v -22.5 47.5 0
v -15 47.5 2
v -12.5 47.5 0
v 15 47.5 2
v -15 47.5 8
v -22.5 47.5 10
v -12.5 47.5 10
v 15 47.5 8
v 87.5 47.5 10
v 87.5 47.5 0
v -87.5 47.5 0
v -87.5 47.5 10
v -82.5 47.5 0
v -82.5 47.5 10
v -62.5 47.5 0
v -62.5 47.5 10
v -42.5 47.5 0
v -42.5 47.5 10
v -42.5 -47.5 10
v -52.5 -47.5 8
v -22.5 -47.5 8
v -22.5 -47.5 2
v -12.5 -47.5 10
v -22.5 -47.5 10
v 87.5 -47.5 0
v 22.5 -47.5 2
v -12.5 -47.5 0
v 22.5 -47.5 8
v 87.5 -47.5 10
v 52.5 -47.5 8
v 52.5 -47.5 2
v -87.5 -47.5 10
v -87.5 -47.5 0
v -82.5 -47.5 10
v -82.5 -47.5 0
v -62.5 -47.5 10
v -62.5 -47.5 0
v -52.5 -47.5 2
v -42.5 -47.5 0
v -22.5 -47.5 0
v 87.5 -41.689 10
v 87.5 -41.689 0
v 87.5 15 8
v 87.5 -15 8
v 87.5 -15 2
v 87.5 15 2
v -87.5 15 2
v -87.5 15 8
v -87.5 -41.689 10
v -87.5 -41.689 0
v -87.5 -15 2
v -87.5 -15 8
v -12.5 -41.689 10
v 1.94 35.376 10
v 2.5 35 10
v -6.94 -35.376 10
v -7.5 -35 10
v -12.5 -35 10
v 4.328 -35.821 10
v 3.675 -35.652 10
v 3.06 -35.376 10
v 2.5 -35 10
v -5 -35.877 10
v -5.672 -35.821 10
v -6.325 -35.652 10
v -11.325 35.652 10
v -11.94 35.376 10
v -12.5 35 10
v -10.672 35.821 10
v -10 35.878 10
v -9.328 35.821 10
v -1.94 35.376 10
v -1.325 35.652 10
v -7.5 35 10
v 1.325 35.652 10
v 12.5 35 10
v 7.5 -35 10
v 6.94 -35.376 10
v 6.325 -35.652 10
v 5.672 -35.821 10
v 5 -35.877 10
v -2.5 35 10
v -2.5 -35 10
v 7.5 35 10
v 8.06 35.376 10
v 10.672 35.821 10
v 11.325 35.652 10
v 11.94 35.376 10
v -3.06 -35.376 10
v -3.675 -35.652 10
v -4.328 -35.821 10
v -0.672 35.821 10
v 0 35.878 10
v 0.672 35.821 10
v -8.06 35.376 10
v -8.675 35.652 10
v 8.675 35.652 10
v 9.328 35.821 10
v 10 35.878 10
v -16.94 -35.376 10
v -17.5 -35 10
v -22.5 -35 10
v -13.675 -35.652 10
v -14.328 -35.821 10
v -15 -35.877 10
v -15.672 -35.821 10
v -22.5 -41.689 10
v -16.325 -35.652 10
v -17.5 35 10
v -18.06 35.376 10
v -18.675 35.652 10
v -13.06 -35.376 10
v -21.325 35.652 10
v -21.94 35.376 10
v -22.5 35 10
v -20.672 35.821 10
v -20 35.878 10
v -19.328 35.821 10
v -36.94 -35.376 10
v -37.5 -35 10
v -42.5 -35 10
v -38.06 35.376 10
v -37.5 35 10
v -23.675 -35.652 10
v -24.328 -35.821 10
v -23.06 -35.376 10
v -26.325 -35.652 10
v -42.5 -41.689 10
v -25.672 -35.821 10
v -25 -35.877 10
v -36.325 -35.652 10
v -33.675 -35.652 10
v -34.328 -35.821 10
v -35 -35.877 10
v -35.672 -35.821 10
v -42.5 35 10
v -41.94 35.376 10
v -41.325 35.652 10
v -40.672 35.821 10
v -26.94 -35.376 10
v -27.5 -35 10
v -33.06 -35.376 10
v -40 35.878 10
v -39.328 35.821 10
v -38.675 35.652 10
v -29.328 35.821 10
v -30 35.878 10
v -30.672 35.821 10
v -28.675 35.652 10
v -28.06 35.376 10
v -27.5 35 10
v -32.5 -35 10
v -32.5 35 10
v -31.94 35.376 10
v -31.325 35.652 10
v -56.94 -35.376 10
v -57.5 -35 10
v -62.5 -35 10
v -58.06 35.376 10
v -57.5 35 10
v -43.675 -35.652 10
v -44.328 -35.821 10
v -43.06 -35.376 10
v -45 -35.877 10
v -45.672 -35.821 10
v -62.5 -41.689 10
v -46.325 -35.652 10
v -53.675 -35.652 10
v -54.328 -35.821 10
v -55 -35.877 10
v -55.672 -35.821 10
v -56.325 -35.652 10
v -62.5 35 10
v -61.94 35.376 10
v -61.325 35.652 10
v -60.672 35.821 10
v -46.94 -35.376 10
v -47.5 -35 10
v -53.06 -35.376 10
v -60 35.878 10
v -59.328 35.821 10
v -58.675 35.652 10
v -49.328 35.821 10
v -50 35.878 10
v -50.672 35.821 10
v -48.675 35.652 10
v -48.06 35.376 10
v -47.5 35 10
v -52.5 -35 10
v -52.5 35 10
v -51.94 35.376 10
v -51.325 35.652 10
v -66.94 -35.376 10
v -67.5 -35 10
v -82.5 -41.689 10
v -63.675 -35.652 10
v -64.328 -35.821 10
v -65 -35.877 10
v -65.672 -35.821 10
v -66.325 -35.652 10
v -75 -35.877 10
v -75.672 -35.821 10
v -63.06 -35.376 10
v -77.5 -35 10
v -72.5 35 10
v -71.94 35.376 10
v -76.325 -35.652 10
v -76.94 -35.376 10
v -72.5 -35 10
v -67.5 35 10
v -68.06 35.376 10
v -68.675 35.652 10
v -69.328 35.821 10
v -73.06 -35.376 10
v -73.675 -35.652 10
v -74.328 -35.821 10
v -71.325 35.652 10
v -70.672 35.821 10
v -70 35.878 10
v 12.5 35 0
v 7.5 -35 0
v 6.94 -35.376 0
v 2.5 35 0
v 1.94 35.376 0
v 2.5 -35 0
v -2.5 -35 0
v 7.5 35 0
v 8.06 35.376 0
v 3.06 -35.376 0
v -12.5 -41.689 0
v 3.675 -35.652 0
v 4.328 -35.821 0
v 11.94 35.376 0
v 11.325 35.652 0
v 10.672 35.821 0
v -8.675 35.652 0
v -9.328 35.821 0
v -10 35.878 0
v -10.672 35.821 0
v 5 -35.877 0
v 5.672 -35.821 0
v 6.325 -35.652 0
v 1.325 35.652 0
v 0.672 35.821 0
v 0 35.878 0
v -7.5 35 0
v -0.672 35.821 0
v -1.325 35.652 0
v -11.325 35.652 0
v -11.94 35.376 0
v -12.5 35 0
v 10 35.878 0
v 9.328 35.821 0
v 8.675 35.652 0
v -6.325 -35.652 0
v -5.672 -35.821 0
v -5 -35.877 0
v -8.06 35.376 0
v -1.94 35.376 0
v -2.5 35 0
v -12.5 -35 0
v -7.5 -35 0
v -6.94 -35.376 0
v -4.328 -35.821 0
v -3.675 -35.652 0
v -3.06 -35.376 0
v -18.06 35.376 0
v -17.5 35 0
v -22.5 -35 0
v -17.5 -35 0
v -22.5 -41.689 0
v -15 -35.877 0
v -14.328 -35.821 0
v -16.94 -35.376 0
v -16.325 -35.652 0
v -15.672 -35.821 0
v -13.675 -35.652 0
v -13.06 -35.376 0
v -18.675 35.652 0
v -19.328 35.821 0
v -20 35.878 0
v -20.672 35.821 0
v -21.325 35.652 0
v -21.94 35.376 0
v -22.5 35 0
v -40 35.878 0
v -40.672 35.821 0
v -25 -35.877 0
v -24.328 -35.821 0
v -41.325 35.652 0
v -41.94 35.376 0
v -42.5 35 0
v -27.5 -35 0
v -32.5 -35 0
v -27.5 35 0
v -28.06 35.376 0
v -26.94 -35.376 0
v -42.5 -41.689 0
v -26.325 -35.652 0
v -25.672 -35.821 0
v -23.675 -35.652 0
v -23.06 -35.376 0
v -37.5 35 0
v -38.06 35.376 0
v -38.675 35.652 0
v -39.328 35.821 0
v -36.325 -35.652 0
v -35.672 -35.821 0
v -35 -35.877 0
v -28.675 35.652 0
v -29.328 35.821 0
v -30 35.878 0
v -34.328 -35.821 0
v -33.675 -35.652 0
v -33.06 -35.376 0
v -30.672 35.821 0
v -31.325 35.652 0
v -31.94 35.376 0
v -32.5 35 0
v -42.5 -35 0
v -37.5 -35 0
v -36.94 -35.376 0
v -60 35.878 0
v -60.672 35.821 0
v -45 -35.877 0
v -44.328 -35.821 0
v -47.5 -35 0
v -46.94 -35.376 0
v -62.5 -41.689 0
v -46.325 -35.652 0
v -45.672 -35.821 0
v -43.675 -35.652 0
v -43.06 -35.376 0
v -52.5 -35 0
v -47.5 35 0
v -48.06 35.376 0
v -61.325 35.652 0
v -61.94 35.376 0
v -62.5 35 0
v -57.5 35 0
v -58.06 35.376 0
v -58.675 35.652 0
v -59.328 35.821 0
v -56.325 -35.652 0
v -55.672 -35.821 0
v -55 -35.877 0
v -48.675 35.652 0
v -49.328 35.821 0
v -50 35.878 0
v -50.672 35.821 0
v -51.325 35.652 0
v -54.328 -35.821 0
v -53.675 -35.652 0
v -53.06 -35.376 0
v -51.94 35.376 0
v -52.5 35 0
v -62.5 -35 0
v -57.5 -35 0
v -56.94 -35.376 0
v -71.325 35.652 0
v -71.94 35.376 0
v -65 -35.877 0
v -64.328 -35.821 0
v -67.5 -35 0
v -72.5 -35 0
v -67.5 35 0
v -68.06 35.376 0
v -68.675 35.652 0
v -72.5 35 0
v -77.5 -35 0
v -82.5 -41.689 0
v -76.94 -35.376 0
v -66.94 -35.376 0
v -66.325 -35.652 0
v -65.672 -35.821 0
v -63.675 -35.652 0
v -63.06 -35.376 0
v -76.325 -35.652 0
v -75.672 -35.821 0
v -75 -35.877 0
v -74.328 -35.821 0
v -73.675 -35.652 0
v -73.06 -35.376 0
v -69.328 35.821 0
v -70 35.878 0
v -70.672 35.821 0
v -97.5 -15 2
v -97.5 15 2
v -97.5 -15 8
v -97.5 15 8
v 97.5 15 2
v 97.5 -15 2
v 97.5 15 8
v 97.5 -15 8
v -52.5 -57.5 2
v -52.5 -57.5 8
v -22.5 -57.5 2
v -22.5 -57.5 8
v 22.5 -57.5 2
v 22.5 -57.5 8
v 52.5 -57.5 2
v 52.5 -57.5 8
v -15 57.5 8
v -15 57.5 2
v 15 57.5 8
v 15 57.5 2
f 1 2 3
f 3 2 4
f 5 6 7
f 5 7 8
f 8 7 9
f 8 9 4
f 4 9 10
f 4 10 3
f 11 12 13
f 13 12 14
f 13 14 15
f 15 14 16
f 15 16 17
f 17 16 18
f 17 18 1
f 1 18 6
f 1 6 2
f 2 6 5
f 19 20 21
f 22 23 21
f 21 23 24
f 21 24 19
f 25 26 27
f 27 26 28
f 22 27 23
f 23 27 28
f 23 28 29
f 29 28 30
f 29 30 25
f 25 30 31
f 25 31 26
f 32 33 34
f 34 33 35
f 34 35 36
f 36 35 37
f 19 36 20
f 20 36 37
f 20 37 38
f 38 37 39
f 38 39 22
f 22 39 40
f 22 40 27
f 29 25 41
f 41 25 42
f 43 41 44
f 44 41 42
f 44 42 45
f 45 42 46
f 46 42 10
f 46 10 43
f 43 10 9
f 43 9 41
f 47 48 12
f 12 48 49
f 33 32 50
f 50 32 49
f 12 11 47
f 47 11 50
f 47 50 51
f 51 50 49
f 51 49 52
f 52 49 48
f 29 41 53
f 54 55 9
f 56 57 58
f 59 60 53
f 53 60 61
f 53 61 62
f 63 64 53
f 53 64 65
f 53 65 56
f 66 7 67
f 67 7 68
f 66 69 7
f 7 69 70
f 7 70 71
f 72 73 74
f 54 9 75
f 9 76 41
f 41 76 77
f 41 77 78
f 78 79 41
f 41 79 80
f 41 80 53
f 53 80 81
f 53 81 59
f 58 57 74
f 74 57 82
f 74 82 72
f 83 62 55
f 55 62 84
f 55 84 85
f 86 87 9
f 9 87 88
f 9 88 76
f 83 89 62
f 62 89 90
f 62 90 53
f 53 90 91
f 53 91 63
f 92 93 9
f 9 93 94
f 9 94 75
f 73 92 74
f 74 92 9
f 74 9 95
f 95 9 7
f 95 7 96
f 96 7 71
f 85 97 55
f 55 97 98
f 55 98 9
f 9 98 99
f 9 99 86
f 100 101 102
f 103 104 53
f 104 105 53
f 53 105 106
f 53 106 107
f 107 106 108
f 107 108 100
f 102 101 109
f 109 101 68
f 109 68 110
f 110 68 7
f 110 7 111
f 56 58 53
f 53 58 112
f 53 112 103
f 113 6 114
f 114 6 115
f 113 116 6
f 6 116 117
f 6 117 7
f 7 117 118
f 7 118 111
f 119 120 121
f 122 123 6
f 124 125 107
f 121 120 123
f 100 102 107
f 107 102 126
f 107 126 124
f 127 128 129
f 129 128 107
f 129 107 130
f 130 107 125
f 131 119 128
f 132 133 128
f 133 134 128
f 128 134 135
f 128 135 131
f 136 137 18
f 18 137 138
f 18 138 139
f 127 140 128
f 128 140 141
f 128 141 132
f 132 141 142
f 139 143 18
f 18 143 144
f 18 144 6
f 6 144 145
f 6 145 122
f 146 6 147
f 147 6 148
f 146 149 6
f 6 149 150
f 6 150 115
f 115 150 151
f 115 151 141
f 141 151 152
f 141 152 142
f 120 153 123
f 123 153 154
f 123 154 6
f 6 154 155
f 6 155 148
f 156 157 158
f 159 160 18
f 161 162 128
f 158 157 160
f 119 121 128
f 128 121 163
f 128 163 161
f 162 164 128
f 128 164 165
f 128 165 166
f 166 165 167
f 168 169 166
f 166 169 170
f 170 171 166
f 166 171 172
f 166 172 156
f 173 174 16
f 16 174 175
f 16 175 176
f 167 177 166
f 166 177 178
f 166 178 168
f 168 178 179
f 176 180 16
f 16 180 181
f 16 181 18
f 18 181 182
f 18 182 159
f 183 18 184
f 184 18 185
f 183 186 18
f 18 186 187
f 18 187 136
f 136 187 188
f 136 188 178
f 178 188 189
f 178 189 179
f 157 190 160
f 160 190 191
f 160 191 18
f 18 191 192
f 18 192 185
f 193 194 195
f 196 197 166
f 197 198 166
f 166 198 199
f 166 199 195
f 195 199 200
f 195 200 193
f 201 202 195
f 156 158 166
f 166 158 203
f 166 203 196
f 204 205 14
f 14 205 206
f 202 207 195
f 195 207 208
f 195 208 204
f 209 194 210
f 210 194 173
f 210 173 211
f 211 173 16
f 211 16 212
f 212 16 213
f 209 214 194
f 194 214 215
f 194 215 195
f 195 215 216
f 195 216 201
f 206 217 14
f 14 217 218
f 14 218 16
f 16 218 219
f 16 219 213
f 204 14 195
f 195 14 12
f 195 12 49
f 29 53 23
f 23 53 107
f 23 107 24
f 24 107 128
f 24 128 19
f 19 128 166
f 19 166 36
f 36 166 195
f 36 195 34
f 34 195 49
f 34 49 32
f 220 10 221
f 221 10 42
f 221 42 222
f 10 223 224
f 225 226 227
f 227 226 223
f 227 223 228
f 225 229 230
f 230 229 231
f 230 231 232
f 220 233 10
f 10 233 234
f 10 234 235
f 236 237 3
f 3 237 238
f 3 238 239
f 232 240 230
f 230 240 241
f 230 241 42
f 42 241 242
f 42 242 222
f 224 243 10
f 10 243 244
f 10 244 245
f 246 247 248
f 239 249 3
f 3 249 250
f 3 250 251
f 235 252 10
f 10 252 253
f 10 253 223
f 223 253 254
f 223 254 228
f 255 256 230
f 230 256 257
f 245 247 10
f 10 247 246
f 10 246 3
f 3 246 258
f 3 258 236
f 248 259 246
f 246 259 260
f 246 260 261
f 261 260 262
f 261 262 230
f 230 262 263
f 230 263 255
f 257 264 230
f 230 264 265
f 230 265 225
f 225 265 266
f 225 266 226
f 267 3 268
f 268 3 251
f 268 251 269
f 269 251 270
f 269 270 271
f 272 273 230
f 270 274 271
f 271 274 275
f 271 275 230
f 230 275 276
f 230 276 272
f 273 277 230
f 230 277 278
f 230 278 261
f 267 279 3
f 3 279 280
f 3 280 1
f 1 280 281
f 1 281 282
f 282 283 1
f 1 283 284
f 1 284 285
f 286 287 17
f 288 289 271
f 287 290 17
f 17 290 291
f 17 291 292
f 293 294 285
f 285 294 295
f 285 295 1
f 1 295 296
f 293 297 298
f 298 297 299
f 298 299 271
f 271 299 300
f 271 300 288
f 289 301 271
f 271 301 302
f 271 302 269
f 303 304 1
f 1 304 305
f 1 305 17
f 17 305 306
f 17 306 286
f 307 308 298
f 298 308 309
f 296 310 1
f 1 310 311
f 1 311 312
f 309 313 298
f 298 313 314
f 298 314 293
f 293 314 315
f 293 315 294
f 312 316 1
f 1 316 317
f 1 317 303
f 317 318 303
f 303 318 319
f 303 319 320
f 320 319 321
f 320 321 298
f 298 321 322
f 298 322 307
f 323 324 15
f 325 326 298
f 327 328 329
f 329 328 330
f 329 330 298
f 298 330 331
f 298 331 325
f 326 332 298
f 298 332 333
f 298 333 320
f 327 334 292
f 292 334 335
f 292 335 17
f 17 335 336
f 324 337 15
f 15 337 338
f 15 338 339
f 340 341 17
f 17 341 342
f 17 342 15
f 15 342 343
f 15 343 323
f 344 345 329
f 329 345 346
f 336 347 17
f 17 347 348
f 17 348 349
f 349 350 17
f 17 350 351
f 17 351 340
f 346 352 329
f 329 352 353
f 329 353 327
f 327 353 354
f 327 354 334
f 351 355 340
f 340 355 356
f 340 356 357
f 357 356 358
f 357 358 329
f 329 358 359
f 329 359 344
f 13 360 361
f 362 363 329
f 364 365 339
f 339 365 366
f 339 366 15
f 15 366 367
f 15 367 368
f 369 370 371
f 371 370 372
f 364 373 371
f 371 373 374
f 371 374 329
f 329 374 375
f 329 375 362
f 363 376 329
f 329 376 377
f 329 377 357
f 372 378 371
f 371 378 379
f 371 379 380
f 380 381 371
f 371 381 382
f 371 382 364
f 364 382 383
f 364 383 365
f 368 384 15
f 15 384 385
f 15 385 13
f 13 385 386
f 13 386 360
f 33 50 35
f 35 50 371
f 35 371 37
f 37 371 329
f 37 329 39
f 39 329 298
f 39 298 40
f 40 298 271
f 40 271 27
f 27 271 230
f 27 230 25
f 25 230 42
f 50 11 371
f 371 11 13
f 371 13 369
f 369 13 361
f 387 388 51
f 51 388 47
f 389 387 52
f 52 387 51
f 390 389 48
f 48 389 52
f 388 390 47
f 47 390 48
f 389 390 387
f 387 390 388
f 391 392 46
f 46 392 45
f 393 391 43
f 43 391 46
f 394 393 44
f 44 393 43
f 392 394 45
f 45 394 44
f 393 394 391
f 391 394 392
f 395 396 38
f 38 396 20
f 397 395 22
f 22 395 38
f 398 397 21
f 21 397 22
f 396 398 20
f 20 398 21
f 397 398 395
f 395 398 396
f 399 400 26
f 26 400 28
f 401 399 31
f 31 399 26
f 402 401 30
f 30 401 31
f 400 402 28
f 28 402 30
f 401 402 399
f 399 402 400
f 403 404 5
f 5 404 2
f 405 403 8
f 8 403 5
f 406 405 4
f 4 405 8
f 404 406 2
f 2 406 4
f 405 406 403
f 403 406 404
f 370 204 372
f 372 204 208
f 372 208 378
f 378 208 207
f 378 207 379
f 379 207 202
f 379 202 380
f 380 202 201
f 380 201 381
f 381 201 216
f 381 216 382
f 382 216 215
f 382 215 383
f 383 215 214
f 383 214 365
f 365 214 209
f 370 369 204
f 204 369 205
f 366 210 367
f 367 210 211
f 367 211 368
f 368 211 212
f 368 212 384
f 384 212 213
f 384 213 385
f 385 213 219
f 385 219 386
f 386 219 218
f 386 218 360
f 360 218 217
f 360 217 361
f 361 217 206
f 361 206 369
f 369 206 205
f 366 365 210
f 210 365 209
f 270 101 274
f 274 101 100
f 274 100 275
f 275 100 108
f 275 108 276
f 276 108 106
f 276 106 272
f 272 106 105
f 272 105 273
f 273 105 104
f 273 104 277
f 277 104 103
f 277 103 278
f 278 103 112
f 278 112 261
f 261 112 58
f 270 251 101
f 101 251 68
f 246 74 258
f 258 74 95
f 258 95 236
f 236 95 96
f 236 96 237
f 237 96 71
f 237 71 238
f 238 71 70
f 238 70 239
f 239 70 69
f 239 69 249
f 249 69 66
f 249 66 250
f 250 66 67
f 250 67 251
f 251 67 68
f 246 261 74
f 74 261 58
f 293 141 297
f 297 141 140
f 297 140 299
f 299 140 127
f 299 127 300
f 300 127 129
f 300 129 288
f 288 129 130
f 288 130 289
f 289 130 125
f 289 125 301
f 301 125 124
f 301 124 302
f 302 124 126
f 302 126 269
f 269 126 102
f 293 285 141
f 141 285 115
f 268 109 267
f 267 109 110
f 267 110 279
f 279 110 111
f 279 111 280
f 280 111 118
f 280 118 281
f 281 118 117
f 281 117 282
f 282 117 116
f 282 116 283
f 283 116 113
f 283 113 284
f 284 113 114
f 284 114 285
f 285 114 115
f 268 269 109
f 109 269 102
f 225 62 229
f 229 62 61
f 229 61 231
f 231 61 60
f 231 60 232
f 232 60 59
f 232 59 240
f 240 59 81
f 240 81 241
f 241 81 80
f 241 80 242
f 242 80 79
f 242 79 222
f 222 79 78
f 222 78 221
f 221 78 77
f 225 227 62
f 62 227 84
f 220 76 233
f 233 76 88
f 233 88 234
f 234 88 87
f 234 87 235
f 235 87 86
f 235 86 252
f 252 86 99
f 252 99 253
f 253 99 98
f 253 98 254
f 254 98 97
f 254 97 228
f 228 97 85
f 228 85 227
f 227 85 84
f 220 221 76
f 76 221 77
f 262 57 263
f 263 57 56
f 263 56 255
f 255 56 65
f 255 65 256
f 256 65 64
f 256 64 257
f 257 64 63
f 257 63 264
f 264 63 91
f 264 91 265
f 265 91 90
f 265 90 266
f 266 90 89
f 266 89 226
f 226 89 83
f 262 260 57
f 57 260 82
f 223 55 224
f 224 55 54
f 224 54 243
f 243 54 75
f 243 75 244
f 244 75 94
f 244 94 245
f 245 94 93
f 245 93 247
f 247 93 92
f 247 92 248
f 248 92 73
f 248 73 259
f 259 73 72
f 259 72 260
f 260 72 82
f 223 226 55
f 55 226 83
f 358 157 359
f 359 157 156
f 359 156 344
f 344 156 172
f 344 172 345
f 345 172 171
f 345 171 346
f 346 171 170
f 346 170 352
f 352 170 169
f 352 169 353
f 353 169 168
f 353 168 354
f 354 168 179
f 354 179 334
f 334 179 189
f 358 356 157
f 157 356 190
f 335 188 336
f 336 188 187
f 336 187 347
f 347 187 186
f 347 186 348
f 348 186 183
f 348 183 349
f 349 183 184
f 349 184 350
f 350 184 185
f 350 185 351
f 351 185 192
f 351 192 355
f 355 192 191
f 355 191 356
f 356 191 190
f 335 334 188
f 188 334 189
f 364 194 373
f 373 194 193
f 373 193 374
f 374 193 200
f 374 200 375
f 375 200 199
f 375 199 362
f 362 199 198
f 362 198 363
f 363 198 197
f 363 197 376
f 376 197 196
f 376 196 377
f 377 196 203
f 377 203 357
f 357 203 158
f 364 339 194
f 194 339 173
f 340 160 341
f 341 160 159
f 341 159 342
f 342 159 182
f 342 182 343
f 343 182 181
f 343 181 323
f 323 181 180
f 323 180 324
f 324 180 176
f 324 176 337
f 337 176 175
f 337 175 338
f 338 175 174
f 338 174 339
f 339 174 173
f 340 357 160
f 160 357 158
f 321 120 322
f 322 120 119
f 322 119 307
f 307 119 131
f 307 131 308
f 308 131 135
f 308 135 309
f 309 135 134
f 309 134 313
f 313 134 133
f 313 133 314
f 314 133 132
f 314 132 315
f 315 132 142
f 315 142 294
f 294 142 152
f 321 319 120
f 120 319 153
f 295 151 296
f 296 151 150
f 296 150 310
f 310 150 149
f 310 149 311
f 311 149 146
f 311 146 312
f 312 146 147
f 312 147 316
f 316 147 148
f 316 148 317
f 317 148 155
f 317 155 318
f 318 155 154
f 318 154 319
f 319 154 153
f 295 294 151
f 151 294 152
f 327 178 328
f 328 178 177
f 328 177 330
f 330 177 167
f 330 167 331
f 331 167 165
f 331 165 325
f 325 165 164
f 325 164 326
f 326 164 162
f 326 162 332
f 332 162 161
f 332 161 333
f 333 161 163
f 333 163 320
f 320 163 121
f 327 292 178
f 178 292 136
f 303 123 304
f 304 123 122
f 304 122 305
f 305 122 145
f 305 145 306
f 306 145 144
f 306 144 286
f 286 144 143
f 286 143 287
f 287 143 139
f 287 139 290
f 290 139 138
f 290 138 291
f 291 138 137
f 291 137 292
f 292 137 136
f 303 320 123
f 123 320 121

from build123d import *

# Parameters (mm, degrees)
ESBO_O1_W                = 175
ESBO_O1_H                = 95
RESSALTO_EXTRUS_O1_DEPTH = 10
ESBO_O2_W                = 6
ESBO_O2_H                = 30
RESSALTO_EXTRUS_O2_DEPTH = 10
ESBO_O3_W                = 6
ESBO_O3_H                = 30
RESSALTO_EXTRUS_O3_DEPTH = 10
ESBO_O4_W                = 30
ESBO_O4_H                = 6
RESSALTO_EXTRUS_O4_DEPTH = 10
ESBO_O5_W                = 30
ESBO_O5_H                = 6
RESSALTO_EXTRUS_O5_DEPTH = 10
CORTE_EXTRUS_O1_DEPTH    = 10


with BuildPart() as part:
    # Esboço1 → Ressalto-extrusão1 (new body)
    with BuildSketch(Plane.XY):
        Rectangle(ESBO_O1_W, ESBO_O1_H)
    extrude(amount=RESSALTO_EXTRUS_O1_DEPTH)

    # Esboço2 → Ressalto-extrusão2 (add)
    with BuildSketch(Plane.ZY.offset(87.5)):
        with Locations((5, 0)):
            Rectangle(ESBO_O2_W, ESBO_O2_H)
    extrude(amount=RESSALTO_EXTRUS_O2_DEPTH)

    # Esboço3 → Ressalto-extrusão3 (add)
    with BuildSketch(Plane(origin=(87.5, 0, 0), x_dir=(0, 0, -1), z_dir=(1, 0, 0))):
        with Locations((-5, 0)):
            Rectangle(ESBO_O3_W, ESBO_O3_H)
    extrude(amount=RESSALTO_EXTRUS_O3_DEPTH)

    # Esboço4 → Ressalto-extrusão4 (add)
    with BuildSketch(Plane.XZ.offset(47.5)):
        with Locations((37.5, 5)):
            Rectangle(ESBO_O4_W, ESBO_O4_H)
        with Locations((-37.5, 5)):
            Rectangle(ESBO_O4_W, ESBO_O4_H)
    extrude(amount=RESSALTO_EXTRUS_O4_DEPTH)

    # Esboço5 → Ressalto-extrusão5 (add)
    with BuildSketch(Plane(origin=(0, 47.5, 0), x_dir=(1, 0, 0), z_dir=(0, 1, 0))):
        with Locations((0, -5)):
            Rectangle(ESBO_O5_W, ESBO_O5_H)
    extrude(amount=RESSALTO_EXTRUS_O5_DEPTH)

    # Esboço6 → Corte-extrusão1 (cut)
    with BuildSketch(Plane.XY.offset(10)):
        with BuildLine():
            Line((-77.5, -35), (-72.5, 35))
            ThreePointArc((-72.5, 35), (-70, 35.877501001), (-67.5, 35))
            Line((-67.5, 35), (-72.5, -35))
            ThreePointArc((-72.5, -35), (-75, -35.877501001), (-77.5, -35))
        make_face()
        with BuildLine():
            Line((-62.5, -35), (-57.5, 35))
            ThreePointArc((-57.5, 35), (-60, 35.877501001), (-62.5, 35))
            Line((-62.5, 35), (-67.5, -35))
            ThreePointArc((-67.5, -35), (-65, -35.877501001), (-62.5, -35))
        make_face()
        with BuildLine():
            Line((-52.5, -35), (-47.5, 35))
            ThreePointArc((-47.5, 35), (-50, 35.877501001), (-52.5, 35))
            Line((-52.5, 35), (-57.5, -35))
            ThreePointArc((-57.5, -35), (-55, -35.877501001), (-52.5, -35))
        make_face()
        with BuildLine():
            Line((-42.5, -35), (-37.5, 35))
            ThreePointArc((-37.5, 35), (-40, 35.877501001), (-42.5, 35))
            Line((-42.5, 35), (-47.5, -35))
            ThreePointArc((-47.5, -35), (-45, -35.877501001), (-42.5, -35))
        make_face()
        with BuildLine():
            Line((-32.5, -35), (-27.5, 35))
            ThreePointArc((-27.5, 35), (-30, 35.877501001), (-32.5, 35))
            Line((-32.5, 35), (-37.5, -35))
            ThreePointArc((-37.5, -35), (-35, -35.877501001), (-32.5, -35))
        make_face()
        with BuildLine():
            Line((-22.5, -35), (-17.5, 35))
            ThreePointArc((-17.5, 35), (-20, 35.877501001), (-22.5, 35))
            Line((-22.5, 35), (-27.5, -35))
            ThreePointArc((-27.5, -35), (-25, -35.877501001), (-22.5, -35))
        make_face()
        with BuildLine():
            Line((-12.5, -35), (-7.5, 35))
            ThreePointArc((-7.5, 35), (-10, 35.877501001), (-12.5, 35))
            Line((-12.5, 35), (-17.5, -35))
            ThreePointArc((-17.5, -35), (-15, -35.877501001), (-12.5, -35))
        make_face()
        with BuildLine():
            Line((-2.5, -35), (2.5, 35))
            ThreePointArc((2.5, 35), (0, 35.877501001), (-2.5, 35))
            Line((-2.5, 35), (-7.5, -35))
            ThreePointArc((-7.5, -35), (-5, -35.877501001), (-2.5, -35))
        make_face()
        with BuildLine():
            Line((7.5, -35), (12.5, 35))
            ThreePointArc((12.5, 35), (10, 35.877501001), (7.5, 35))
            Line((7.5, 35), (2.5, -35))
            ThreePointArc((2.5, -35), (5, -35.877501001), (7.5, -35))
        make_face()
    extrude(amount=-CORTE_EXTRUS_O1_DEPTH, mode=Mode.SUBTRACT)


solid = part.part
